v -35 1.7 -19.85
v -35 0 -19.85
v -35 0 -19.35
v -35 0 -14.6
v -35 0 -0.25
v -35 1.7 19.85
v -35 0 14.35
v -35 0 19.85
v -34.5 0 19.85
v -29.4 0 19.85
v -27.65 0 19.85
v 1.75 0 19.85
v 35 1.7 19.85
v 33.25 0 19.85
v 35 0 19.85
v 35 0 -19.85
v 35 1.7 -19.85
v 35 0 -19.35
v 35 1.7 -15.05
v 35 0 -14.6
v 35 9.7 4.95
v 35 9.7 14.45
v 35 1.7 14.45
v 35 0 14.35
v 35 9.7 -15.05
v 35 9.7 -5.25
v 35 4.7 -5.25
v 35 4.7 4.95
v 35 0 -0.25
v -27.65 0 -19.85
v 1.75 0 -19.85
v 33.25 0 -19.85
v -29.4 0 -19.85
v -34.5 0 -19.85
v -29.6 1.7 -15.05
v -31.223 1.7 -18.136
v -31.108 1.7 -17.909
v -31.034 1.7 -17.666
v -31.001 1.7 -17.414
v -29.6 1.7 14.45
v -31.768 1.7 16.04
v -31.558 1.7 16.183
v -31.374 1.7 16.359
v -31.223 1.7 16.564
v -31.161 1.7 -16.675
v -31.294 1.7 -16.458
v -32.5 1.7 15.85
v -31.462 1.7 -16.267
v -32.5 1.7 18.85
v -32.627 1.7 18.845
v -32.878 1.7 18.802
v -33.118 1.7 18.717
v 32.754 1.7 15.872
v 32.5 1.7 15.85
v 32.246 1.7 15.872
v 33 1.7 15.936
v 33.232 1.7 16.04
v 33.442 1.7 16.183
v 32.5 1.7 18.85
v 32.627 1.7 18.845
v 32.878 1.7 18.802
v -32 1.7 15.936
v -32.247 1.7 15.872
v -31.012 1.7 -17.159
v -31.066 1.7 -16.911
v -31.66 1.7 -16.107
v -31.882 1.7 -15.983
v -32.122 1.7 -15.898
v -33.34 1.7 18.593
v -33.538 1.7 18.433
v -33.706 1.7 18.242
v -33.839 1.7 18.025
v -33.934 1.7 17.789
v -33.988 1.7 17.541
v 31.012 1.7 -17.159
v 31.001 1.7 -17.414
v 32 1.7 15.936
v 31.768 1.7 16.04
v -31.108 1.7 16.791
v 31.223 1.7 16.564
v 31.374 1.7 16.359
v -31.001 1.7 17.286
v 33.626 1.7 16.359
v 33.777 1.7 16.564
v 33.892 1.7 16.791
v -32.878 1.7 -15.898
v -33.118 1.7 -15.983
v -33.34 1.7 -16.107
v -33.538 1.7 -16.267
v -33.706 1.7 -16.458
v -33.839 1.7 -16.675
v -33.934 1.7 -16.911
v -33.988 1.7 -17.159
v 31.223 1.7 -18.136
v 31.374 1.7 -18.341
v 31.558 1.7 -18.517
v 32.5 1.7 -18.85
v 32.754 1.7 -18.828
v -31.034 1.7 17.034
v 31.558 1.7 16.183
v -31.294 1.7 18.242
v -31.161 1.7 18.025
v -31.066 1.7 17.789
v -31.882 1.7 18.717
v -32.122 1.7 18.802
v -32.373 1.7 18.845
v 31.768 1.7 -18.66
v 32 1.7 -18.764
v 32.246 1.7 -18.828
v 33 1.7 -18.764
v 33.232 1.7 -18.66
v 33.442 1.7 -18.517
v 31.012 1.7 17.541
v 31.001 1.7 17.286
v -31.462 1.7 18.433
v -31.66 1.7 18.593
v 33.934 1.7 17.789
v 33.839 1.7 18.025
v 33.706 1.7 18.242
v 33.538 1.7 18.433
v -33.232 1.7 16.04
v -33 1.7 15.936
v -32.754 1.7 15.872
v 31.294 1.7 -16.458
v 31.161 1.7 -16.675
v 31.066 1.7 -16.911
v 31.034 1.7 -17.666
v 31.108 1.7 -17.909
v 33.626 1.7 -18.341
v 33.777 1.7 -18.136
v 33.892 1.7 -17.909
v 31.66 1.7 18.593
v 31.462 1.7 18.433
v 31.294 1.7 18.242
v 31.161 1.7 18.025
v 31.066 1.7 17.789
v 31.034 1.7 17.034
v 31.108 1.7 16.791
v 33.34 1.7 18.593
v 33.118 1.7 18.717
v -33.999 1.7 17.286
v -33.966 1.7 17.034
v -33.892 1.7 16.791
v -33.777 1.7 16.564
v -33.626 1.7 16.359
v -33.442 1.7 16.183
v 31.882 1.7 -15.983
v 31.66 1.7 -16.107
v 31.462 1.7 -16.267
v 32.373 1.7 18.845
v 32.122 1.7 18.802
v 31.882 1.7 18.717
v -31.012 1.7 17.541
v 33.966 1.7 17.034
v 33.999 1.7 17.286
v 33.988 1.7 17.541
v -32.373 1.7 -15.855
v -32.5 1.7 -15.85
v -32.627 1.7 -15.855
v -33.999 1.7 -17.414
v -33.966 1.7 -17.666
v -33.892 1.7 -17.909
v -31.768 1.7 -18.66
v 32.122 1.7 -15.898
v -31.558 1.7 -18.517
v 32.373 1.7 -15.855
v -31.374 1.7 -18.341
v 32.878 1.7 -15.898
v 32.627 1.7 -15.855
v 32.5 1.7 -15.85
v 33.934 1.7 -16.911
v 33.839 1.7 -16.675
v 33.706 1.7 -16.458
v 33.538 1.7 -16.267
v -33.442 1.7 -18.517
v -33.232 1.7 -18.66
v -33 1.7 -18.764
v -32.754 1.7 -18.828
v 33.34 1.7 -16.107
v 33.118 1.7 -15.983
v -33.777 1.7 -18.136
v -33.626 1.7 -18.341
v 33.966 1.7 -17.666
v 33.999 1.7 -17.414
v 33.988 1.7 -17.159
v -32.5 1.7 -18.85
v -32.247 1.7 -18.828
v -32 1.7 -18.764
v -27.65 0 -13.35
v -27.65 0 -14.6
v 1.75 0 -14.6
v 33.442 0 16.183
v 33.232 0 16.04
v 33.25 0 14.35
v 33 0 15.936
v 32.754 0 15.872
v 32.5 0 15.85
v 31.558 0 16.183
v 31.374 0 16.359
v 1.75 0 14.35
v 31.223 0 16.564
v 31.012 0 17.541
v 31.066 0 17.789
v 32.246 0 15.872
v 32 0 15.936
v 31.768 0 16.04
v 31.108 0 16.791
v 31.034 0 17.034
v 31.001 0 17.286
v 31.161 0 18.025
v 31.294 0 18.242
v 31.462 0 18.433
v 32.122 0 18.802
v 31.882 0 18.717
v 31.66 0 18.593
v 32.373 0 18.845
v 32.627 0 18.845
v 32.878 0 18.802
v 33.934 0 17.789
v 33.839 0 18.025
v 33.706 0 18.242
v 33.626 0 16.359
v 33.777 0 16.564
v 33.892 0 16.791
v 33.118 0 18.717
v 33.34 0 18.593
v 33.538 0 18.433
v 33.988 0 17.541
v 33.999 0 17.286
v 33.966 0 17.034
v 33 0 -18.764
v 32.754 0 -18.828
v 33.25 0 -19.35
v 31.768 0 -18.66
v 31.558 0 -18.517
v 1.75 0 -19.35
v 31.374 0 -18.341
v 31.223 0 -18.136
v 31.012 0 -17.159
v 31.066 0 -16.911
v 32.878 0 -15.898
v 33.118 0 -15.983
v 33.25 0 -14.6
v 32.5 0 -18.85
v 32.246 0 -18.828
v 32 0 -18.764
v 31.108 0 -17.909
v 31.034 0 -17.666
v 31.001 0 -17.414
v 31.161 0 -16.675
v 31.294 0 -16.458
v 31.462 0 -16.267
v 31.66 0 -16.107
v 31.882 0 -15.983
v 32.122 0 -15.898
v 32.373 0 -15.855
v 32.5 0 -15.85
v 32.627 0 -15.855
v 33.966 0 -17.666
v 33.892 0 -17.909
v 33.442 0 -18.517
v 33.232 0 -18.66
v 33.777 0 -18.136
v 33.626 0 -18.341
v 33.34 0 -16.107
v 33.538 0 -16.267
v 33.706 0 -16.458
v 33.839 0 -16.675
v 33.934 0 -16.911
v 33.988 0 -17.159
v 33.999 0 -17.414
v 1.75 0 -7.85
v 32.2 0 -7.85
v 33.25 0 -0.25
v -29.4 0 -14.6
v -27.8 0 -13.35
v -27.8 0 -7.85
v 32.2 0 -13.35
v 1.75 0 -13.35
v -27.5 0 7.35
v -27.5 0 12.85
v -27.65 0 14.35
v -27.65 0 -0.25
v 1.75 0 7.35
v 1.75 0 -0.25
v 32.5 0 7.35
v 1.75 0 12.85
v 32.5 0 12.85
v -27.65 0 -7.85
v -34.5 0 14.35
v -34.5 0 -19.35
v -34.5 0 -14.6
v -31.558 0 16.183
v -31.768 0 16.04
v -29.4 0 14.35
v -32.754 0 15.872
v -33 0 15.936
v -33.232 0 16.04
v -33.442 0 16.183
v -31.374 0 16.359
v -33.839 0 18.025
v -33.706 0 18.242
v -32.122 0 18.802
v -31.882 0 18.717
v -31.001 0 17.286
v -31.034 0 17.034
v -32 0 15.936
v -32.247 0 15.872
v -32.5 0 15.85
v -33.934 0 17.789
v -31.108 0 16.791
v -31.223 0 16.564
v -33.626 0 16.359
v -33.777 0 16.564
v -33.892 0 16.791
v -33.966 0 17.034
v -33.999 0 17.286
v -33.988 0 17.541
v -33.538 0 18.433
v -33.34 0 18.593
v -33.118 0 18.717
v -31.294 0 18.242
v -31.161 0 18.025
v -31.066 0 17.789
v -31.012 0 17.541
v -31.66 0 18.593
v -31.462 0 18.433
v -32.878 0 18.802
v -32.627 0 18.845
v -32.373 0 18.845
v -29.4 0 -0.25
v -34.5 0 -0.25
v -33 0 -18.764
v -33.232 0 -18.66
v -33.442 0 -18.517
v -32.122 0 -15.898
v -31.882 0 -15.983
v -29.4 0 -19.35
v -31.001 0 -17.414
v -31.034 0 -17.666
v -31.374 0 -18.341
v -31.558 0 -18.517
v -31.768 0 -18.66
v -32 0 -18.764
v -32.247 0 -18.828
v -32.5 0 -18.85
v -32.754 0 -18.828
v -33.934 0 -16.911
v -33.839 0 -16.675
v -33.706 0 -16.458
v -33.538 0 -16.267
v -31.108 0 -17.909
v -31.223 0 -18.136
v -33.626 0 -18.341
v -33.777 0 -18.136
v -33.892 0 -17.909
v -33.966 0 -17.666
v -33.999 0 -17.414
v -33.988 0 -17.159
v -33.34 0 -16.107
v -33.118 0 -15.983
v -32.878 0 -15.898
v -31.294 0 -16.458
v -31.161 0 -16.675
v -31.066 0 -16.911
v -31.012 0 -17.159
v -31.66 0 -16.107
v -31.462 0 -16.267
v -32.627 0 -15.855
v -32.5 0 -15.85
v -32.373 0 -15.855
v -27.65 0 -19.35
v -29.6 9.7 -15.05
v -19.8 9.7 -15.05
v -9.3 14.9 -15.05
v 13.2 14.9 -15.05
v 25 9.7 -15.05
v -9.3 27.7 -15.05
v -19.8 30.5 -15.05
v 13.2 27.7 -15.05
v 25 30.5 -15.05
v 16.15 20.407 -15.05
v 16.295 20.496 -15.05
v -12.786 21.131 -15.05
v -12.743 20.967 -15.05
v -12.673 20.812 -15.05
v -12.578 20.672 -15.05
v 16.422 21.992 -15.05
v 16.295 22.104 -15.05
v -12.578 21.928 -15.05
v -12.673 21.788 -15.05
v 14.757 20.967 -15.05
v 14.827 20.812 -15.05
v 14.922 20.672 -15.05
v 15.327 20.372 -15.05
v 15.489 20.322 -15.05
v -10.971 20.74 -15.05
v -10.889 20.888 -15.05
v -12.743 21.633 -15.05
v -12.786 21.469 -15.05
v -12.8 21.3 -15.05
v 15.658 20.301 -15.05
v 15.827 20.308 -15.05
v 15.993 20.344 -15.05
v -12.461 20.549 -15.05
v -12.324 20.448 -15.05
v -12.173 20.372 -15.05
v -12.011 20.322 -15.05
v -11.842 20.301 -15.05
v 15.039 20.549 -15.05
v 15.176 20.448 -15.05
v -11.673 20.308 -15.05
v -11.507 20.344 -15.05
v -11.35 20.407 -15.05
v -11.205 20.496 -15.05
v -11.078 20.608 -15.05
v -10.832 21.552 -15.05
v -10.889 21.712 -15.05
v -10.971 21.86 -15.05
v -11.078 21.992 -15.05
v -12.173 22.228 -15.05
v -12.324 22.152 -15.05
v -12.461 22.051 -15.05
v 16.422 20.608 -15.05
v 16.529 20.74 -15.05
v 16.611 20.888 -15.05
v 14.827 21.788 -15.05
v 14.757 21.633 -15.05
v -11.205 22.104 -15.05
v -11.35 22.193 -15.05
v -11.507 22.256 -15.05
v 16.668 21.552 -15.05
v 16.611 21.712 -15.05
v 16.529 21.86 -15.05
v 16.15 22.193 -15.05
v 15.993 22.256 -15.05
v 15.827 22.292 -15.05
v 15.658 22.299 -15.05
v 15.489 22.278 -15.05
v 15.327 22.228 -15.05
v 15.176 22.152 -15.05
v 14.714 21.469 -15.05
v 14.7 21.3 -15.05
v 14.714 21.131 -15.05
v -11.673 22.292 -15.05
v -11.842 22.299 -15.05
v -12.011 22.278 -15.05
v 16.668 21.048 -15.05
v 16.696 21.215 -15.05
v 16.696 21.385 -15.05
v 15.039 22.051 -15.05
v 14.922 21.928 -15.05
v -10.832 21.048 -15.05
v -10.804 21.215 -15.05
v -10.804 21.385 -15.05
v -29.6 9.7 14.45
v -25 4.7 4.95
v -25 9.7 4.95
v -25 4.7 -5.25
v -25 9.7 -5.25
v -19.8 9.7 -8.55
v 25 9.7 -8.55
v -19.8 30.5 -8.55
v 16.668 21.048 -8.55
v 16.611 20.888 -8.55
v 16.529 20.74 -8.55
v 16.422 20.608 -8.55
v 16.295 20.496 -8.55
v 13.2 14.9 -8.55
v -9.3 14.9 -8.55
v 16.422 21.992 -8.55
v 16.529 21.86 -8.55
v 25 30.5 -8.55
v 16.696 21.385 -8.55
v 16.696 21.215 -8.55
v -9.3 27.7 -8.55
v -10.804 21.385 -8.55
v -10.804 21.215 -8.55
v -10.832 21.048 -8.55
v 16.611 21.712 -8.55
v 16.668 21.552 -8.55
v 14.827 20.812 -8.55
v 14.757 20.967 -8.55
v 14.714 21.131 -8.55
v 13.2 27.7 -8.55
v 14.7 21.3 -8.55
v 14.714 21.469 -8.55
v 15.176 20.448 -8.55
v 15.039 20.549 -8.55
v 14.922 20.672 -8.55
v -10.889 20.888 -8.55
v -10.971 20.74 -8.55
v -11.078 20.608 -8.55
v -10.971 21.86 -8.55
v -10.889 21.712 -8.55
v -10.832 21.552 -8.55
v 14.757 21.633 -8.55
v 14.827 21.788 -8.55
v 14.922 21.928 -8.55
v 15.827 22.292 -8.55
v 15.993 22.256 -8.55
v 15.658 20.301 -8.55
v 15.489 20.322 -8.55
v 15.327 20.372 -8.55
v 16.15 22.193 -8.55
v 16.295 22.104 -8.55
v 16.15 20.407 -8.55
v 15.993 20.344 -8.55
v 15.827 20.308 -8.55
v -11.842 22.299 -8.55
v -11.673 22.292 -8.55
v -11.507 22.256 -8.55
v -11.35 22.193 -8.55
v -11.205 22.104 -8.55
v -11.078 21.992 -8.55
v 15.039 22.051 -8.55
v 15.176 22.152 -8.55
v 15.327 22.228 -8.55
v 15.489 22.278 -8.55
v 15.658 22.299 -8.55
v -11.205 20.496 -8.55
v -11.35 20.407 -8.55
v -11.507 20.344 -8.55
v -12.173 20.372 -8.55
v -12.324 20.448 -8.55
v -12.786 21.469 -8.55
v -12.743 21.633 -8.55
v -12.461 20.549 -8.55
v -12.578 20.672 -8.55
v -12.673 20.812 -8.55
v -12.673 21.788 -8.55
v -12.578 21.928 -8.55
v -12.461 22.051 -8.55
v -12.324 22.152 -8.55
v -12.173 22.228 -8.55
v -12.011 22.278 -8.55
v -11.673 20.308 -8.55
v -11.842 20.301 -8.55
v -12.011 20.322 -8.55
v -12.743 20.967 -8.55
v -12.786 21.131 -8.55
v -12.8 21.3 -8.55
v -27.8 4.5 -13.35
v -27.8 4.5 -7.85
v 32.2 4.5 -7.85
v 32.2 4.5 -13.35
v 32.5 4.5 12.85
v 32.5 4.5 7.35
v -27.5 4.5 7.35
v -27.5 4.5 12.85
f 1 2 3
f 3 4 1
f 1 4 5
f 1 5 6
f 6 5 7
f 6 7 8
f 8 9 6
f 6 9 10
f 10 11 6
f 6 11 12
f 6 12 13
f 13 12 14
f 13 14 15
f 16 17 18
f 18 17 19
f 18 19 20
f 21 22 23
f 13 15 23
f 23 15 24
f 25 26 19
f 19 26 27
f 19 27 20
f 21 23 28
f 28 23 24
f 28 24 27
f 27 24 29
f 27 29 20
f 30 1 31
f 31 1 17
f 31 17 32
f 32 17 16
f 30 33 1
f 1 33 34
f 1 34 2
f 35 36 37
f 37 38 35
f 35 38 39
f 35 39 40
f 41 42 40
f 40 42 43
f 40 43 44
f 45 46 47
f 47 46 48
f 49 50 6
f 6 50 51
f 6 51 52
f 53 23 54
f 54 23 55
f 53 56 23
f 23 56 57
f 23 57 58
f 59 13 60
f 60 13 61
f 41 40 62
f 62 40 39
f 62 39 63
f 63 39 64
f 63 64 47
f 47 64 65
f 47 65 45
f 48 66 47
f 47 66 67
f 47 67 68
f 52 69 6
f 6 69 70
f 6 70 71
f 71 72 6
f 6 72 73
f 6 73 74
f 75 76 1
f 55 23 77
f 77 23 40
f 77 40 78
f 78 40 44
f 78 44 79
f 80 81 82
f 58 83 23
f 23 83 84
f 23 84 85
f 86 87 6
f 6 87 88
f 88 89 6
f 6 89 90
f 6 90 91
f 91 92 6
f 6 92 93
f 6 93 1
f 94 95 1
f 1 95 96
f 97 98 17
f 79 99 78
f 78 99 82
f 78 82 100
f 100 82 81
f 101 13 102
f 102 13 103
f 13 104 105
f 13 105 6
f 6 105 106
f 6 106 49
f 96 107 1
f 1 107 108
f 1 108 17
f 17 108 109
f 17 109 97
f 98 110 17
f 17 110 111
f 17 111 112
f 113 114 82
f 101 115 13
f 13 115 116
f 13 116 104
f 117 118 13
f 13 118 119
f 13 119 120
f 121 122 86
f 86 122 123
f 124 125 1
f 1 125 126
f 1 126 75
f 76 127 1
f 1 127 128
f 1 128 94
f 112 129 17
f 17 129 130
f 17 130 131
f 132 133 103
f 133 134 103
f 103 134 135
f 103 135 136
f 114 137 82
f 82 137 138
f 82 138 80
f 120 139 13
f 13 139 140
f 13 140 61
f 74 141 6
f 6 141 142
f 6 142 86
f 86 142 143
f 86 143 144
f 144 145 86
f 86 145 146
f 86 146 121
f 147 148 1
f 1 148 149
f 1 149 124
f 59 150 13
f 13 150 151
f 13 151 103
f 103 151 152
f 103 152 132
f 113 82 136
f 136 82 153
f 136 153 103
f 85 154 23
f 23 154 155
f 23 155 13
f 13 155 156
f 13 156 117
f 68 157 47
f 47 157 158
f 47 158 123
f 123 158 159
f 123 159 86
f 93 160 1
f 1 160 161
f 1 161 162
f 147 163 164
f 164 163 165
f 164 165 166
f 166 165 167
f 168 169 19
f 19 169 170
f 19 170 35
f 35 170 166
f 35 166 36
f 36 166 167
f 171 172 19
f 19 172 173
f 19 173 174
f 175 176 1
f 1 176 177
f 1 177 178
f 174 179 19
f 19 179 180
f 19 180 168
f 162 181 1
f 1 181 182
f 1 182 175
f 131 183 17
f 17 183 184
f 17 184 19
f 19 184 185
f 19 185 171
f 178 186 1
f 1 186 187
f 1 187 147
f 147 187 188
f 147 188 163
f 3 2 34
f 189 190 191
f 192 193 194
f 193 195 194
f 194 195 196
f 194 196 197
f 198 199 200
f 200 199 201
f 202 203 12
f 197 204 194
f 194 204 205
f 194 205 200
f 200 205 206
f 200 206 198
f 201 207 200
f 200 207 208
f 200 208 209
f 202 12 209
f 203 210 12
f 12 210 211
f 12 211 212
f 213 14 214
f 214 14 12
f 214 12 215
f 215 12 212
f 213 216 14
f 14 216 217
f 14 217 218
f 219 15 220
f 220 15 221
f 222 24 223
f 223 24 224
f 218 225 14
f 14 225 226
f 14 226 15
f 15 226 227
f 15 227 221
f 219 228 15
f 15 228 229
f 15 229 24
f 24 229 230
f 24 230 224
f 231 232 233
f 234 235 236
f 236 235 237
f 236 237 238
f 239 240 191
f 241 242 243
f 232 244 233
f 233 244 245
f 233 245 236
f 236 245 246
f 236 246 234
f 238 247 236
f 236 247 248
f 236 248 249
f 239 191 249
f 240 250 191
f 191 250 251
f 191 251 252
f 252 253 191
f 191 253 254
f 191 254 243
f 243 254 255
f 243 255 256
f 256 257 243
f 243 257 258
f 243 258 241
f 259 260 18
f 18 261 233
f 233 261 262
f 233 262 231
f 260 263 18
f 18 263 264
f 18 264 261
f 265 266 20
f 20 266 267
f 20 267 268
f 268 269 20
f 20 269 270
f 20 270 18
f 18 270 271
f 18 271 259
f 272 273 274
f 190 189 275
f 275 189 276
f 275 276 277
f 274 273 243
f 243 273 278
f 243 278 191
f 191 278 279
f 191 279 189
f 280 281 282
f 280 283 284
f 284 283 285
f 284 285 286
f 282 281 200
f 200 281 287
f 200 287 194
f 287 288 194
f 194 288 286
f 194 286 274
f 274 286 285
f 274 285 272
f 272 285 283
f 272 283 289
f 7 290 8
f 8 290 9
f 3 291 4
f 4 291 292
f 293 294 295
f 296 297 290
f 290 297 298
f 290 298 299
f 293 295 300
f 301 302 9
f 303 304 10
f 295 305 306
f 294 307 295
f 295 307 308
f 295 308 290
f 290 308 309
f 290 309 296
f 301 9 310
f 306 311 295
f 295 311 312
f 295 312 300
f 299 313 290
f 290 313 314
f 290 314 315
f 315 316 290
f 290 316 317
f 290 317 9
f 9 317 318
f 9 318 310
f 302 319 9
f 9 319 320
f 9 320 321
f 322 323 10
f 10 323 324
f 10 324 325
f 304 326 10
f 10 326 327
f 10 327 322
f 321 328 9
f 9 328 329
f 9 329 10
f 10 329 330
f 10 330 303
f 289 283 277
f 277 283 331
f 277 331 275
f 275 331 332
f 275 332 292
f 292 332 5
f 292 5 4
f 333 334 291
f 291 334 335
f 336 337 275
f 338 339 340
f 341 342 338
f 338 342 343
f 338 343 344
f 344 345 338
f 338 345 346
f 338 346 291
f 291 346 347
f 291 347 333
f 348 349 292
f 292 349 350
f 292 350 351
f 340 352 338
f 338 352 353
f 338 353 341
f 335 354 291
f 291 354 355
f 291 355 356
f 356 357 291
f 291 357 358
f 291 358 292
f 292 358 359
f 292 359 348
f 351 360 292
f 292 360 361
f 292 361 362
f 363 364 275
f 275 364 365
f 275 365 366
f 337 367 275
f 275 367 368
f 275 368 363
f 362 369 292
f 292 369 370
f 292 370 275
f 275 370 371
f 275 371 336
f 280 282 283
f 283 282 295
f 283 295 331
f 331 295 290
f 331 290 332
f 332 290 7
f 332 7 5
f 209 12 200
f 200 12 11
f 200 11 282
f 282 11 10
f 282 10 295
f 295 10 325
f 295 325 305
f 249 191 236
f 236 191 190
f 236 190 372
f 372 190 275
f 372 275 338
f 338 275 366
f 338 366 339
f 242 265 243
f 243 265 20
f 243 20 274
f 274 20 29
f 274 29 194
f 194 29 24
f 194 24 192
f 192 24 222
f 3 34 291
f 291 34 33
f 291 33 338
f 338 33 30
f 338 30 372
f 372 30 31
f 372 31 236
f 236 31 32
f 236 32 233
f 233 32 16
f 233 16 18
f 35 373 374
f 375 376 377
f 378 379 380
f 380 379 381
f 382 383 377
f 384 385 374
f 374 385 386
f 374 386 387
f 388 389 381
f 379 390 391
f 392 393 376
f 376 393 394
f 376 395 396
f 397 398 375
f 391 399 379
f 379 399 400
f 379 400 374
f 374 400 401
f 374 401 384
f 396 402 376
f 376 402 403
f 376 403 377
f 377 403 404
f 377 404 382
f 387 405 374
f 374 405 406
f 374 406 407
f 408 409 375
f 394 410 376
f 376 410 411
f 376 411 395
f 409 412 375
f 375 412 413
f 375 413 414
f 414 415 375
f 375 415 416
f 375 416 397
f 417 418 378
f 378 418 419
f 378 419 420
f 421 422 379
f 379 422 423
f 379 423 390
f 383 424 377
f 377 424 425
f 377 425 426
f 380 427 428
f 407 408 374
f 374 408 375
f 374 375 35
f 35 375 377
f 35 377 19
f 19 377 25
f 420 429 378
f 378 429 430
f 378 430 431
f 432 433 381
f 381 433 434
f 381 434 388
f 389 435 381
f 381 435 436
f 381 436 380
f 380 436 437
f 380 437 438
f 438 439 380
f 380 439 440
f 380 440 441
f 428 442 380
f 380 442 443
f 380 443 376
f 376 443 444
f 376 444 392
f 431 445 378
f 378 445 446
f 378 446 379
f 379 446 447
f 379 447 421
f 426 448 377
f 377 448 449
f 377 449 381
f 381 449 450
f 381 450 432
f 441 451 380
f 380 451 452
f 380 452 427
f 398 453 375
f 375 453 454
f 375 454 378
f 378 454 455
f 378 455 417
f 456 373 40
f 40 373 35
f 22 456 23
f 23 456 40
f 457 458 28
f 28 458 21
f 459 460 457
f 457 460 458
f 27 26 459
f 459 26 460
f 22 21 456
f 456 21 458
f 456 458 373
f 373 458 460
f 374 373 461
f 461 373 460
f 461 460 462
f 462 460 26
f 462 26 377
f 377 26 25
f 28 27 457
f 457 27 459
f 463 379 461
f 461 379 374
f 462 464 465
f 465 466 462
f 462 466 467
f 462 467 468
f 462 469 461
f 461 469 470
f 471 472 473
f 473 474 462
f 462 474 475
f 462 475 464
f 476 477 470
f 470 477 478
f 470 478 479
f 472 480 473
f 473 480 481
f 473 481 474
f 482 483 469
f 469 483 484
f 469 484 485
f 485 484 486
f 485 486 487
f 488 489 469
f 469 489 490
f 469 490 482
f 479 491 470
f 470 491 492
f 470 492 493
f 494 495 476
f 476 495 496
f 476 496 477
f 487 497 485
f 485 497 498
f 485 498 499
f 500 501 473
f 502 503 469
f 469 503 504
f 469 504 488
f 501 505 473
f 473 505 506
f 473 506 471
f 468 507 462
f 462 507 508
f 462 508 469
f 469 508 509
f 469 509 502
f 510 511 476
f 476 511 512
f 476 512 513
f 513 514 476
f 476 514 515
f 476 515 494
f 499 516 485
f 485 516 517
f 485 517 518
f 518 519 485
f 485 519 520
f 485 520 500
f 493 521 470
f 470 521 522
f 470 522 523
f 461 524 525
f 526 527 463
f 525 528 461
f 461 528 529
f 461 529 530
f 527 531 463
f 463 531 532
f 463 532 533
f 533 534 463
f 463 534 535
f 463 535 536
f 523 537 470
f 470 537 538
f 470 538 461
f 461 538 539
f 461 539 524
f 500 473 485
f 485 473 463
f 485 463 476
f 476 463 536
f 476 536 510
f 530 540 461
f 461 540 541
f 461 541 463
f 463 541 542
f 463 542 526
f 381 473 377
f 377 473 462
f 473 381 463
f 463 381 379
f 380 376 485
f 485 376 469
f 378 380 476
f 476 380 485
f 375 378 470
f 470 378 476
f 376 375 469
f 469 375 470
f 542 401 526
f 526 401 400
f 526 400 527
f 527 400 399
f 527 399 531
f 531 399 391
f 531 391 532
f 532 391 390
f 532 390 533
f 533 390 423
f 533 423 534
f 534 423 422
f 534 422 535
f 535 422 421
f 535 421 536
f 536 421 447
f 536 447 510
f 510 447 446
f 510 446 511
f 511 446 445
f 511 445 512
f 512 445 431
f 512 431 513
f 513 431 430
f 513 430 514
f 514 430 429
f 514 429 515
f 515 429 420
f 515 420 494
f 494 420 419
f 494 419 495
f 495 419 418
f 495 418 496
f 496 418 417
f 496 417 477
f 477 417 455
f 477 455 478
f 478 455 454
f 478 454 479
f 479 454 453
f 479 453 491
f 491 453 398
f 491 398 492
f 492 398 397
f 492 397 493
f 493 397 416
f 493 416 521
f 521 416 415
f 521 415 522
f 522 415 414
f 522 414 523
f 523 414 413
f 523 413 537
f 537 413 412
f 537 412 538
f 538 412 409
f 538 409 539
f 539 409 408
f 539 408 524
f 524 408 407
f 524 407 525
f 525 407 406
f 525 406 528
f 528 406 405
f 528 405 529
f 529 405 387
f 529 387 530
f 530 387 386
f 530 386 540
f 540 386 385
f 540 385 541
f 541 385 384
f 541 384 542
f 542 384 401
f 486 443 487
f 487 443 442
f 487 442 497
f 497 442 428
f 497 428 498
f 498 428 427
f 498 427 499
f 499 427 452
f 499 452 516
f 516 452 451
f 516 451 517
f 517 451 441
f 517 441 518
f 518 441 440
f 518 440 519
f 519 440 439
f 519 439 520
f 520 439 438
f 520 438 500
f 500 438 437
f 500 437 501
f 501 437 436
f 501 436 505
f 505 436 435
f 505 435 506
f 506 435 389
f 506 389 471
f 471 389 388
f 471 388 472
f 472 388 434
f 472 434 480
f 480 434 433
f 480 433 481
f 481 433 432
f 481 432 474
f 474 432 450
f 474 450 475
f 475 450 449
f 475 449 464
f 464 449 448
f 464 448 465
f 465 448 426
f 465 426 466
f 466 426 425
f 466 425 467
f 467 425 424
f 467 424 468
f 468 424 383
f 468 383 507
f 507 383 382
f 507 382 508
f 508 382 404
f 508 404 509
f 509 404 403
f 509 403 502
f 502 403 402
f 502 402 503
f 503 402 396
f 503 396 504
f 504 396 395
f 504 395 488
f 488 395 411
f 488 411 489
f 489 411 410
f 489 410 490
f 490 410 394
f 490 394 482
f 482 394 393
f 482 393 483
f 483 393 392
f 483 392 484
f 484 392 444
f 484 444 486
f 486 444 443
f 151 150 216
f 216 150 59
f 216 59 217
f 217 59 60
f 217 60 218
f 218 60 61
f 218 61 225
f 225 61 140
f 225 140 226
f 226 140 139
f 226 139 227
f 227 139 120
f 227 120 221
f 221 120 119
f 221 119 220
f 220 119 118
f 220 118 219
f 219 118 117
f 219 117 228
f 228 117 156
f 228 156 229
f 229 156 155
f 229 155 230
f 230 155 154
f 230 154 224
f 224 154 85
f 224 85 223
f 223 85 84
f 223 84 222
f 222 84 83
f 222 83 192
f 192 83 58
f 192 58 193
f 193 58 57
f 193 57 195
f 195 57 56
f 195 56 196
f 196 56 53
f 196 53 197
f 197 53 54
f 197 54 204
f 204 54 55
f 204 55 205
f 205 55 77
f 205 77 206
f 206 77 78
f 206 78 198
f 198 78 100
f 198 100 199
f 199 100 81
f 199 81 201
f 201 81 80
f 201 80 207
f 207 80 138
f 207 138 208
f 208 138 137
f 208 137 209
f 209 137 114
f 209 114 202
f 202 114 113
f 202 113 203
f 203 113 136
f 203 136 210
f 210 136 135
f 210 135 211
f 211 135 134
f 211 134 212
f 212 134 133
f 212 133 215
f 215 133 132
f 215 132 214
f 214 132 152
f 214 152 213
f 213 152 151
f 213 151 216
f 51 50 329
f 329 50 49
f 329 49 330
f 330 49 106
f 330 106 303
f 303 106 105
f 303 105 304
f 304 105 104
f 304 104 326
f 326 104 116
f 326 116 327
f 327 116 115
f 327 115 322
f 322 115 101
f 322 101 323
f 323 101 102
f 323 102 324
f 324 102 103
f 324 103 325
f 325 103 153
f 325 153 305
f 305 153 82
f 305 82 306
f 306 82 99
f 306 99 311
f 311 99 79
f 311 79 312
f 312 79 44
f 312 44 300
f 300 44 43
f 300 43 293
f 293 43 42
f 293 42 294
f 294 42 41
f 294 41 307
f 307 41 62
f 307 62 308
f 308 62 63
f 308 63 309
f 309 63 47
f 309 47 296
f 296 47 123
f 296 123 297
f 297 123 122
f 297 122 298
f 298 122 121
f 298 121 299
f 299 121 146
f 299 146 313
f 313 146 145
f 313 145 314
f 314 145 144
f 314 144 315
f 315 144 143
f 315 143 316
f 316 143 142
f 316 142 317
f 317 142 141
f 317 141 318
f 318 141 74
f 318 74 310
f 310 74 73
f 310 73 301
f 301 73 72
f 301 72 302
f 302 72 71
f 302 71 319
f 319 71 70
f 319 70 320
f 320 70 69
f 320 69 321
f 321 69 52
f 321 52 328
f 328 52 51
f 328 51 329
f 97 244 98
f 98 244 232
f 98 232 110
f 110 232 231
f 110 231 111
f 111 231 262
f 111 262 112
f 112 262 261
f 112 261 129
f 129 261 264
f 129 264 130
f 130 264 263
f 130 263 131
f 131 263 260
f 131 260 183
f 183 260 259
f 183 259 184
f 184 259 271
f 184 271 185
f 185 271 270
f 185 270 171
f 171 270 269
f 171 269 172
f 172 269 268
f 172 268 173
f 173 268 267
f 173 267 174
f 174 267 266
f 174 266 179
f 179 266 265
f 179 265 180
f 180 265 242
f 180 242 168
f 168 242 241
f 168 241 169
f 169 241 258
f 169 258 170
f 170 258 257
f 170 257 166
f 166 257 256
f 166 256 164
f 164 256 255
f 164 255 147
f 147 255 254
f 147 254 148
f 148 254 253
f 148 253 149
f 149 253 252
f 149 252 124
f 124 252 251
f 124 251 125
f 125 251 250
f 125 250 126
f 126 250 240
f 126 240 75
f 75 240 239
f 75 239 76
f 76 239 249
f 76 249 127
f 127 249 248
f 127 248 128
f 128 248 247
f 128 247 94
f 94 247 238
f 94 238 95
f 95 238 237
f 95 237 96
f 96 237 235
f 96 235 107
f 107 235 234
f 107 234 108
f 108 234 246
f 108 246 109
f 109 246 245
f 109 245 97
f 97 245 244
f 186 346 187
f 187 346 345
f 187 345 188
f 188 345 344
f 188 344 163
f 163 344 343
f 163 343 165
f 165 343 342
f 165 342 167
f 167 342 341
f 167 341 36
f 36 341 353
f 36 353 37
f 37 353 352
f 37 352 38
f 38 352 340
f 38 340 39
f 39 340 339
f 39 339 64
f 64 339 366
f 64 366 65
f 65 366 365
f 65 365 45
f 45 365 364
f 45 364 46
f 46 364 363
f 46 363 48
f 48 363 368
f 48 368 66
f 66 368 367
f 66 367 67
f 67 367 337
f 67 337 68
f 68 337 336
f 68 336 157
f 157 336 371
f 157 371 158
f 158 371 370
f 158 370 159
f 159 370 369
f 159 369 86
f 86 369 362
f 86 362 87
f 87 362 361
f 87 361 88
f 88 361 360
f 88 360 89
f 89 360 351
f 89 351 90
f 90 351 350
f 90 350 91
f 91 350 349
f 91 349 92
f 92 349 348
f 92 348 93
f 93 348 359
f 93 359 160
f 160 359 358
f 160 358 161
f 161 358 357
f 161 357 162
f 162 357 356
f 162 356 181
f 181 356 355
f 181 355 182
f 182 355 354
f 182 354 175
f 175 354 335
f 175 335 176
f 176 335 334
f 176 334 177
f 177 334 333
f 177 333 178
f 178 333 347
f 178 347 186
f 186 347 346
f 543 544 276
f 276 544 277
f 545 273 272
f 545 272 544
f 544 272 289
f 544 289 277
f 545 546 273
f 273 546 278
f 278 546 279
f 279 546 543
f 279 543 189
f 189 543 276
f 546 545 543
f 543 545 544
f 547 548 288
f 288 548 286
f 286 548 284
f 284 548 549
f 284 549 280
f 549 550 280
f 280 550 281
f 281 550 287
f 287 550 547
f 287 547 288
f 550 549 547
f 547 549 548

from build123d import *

# Parameters (mm, degrees)
SKETCH2_W           = 70
SKETCH2_H           = 39.7
BOSS_EXTRUDE1_DEPTH = 1.7
BOSS_EXTRUDE2_DEPTH = 8
SKETCH6_W           = 60
SKETCH6_H           = 10.2
BOSS_EXTRUDE3_DEPTH = 3
SKETCH7_W           = 44.8
SKETCH7_H           = 6.5
BOSS_EXTRUDE4_DEPTH = 20.8
CUT_EXTRUDE1_REACH  = 60.08
SKETCH8_W           = 22.5
SKETCH8_H           = 12.8
CUT_EXTRUDE2_REACH  = 60.08
SKETCH9_R           = 1
CUT_EXTRUDE3_REACH  = 52.49
SKETCH10_R          = 1.5
SKETCH13_W          = 60
SKETCH13_H          = 5.5
CUT_EXTRUDE4_DEPTH  = 4.5
SKETCH14_W          = 60
SKETCH14_H          = 5.5
CUT_EXTRUDE5_DEPTH  = 4.5


with BuildPart() as part:
    # Sketch2 → Boss-Extrude1 (new body)
    with BuildSketch(Plane(origin=(0, 0, 0), x_dir=(1, 0, 0), z_dir=(0, 1, 0))):
        Rectangle(SKETCH2_W, SKETCH2_H)
    extrude(amount=BOSS_EXTRUDE1_DEPTH)

    # Sketch3 → Boss-Extrude2 (add)
    with BuildSketch(Plane(origin=(0, 1.7, 0), x_dir=(1, 0, 0), z_dir=(0, 1, 0))):
        Polygon((35, 15.05), (-29.6, 15.05), (-29.6, -14.45), (35, -14.45), (35, -4.95), (-25, -4.95), (-25, 5.25), (35, 5.25), align=None)
    extrude(amount=BOSS_EXTRUDE2_DEPTH)

    # Sketch6 → Boss-Extrude3 (add)
    with BuildSketch(Plane(origin=(0, 1.7, 0), x_dir=(1, 0, 0), z_dir=(0, 1, 0))):
        with Locations((5, 0.15)):
            Rectangle(SKETCH6_W, SKETCH6_H)
    extrude(amount=BOSS_EXTRUDE3_DEPTH)

    # Sketch7 → Boss-Extrude4 (add)
    with BuildSketch(Plane(origin=(0, 9.7, 0), x_dir=(1, 0, 0), z_dir=(0, 1, 0))):
        with Locations((2.6, 11.8)):
            Rectangle(SKETCH7_W, SKETCH7_H)
    extrude(amount=BOSS_EXTRUDE4_DEPTH)

    # Sketch8 → Cut-Extrude1 (cut, up to next)
    with BuildSketch(Plane(origin=(0, 0, -15.05), x_dir=(-1, 0, 0), z_dir=(0, 0, -1)), mode=Mode.PRIVATE) as cut_extrude1_sk1:
        with Locations((-1.95, 21.3)):
            Rectangle(SKETCH8_W, SKETCH8_H)
    cut_extrude1_tool1 = extrude(cut_extrude1_sk1.sketch, amount=-CUT_EXTRUDE1_REACH, mode=Mode.PRIVATE) & part.part
    add(cut_extrude1_tool1.solids().sort_by_distance((1.95, 21.3, -15.05))[0], mode=Mode.SUBTRACT)

    # Sketch9 → Cut-Extrude2 (cut, up to next)
    with BuildSketch(Plane(origin=(0, 0, -15.05), x_dir=(-1, 0, 0), z_dir=(0, 0, -1)), mode=Mode.PRIVATE) as cut_extrude2_sk1:
        with Locations((-15.7, 21.3)):
            Circle(SKETCH9_R)
    cut_extrude2_tool1 = extrude(cut_extrude2_sk1.sketch, amount=-CUT_EXTRUDE2_REACH, mode=Mode.PRIVATE) & part.part
    # Sketch9 → Cut-Extrude2 (cut, up to next)
    with BuildSketch(Plane(origin=(0, 0, -15.05), x_dir=(-1, 0, 0), z_dir=(0, 0, -1)), mode=Mode.PRIVATE) as cut_extrude2_sk2:
        with Locations((11.8, 21.3)):
            Circle(SKETCH9_R)
    cut_extrude2_tool2 = extrude(cut_extrude2_sk2.sketch, amount=-CUT_EXTRUDE2_REACH, mode=Mode.PRIVATE) & part.part
    add(cut_extrude2_tool1.solids().sort_by_distance((15.7, 21.3, -15.05))[0], mode=Mode.SUBTRACT)
    add(cut_extrude2_tool2.solids().sort_by_distance((-11.8, 21.3, -15.05))[0], mode=Mode.SUBTRACT)

    # Sketch10 → Cut-Extrude3 (cut, up to next)
    with BuildSketch(Plane.XZ, mode=Mode.PRIVATE) as cut_extrude3_sk1:
        with Locations(Location((-32.5, 17.35, 0), (0, 0, 270))):
            Circle(SKETCH10_R)
    cut_extrude3_tool1 = extrude(cut_extrude3_sk1.sketch, amount=-CUT_EXTRUDE3_REACH, mode=Mode.PRIVATE) & part.part
    # Sketch10 → Cut-Extrude3 (cut, up to next)
    with BuildSketch(Plane.XZ, mode=Mode.PRIVATE) as cut_extrude3_sk2:
        with Locations(Location((32.5, 17.35, 0), (0, 0, 270))):
            Circle(SKETCH10_R)
    cut_extrude3_tool2 = extrude(cut_extrude3_sk2.sketch, amount=-CUT_EXTRUDE3_REACH, mode=Mode.PRIVATE) & part.part
    cut_extrude3_1 = cut_extrude3_tool1.solids().sort_by_distance((-32.5, 0, 17.35))[0]
    add(cut_extrude3_1, mode=Mode.SUBTRACT)
    cut_extrude3_2 = cut_extrude3_tool2.solids().sort_by_distance((32.5, 0, 17.35))[0]
    add(cut_extrude3_2, mode=Mode.SUBTRACT)
    cut_extrude3 = cut_extrude3_1 + cut_extrude3_2  # Cut-Extrude3 as one shape, for the pattern or mirror that repeats it

    # Mirror1: Cut-Extrude3 across plane
    add(cut_extrude3.mirror(Plane.XY), mode=Mode.SUBTRACT)

    # Sketch13 → Cut-Extrude4 (cut)
    with BuildSketch(Plane.XZ):
        with Locations((2.2, -10.6)):
            Rectangle(SKETCH13_W, SKETCH13_H)
    extrude(amount=-CUT_EXTRUDE4_DEPTH, mode=Mode.SUBTRACT)

    # Sketch14 → Cut-Extrude5 (cut)
    with BuildSketch(Plane.XZ):
        with Locations((2.5, 10.1)):
            Rectangle(SKETCH14_W, SKETCH14_H)
    extrude(amount=-CUT_EXTRUDE5_DEPTH, mode=Mode.SUBTRACT)


solid = part.part
